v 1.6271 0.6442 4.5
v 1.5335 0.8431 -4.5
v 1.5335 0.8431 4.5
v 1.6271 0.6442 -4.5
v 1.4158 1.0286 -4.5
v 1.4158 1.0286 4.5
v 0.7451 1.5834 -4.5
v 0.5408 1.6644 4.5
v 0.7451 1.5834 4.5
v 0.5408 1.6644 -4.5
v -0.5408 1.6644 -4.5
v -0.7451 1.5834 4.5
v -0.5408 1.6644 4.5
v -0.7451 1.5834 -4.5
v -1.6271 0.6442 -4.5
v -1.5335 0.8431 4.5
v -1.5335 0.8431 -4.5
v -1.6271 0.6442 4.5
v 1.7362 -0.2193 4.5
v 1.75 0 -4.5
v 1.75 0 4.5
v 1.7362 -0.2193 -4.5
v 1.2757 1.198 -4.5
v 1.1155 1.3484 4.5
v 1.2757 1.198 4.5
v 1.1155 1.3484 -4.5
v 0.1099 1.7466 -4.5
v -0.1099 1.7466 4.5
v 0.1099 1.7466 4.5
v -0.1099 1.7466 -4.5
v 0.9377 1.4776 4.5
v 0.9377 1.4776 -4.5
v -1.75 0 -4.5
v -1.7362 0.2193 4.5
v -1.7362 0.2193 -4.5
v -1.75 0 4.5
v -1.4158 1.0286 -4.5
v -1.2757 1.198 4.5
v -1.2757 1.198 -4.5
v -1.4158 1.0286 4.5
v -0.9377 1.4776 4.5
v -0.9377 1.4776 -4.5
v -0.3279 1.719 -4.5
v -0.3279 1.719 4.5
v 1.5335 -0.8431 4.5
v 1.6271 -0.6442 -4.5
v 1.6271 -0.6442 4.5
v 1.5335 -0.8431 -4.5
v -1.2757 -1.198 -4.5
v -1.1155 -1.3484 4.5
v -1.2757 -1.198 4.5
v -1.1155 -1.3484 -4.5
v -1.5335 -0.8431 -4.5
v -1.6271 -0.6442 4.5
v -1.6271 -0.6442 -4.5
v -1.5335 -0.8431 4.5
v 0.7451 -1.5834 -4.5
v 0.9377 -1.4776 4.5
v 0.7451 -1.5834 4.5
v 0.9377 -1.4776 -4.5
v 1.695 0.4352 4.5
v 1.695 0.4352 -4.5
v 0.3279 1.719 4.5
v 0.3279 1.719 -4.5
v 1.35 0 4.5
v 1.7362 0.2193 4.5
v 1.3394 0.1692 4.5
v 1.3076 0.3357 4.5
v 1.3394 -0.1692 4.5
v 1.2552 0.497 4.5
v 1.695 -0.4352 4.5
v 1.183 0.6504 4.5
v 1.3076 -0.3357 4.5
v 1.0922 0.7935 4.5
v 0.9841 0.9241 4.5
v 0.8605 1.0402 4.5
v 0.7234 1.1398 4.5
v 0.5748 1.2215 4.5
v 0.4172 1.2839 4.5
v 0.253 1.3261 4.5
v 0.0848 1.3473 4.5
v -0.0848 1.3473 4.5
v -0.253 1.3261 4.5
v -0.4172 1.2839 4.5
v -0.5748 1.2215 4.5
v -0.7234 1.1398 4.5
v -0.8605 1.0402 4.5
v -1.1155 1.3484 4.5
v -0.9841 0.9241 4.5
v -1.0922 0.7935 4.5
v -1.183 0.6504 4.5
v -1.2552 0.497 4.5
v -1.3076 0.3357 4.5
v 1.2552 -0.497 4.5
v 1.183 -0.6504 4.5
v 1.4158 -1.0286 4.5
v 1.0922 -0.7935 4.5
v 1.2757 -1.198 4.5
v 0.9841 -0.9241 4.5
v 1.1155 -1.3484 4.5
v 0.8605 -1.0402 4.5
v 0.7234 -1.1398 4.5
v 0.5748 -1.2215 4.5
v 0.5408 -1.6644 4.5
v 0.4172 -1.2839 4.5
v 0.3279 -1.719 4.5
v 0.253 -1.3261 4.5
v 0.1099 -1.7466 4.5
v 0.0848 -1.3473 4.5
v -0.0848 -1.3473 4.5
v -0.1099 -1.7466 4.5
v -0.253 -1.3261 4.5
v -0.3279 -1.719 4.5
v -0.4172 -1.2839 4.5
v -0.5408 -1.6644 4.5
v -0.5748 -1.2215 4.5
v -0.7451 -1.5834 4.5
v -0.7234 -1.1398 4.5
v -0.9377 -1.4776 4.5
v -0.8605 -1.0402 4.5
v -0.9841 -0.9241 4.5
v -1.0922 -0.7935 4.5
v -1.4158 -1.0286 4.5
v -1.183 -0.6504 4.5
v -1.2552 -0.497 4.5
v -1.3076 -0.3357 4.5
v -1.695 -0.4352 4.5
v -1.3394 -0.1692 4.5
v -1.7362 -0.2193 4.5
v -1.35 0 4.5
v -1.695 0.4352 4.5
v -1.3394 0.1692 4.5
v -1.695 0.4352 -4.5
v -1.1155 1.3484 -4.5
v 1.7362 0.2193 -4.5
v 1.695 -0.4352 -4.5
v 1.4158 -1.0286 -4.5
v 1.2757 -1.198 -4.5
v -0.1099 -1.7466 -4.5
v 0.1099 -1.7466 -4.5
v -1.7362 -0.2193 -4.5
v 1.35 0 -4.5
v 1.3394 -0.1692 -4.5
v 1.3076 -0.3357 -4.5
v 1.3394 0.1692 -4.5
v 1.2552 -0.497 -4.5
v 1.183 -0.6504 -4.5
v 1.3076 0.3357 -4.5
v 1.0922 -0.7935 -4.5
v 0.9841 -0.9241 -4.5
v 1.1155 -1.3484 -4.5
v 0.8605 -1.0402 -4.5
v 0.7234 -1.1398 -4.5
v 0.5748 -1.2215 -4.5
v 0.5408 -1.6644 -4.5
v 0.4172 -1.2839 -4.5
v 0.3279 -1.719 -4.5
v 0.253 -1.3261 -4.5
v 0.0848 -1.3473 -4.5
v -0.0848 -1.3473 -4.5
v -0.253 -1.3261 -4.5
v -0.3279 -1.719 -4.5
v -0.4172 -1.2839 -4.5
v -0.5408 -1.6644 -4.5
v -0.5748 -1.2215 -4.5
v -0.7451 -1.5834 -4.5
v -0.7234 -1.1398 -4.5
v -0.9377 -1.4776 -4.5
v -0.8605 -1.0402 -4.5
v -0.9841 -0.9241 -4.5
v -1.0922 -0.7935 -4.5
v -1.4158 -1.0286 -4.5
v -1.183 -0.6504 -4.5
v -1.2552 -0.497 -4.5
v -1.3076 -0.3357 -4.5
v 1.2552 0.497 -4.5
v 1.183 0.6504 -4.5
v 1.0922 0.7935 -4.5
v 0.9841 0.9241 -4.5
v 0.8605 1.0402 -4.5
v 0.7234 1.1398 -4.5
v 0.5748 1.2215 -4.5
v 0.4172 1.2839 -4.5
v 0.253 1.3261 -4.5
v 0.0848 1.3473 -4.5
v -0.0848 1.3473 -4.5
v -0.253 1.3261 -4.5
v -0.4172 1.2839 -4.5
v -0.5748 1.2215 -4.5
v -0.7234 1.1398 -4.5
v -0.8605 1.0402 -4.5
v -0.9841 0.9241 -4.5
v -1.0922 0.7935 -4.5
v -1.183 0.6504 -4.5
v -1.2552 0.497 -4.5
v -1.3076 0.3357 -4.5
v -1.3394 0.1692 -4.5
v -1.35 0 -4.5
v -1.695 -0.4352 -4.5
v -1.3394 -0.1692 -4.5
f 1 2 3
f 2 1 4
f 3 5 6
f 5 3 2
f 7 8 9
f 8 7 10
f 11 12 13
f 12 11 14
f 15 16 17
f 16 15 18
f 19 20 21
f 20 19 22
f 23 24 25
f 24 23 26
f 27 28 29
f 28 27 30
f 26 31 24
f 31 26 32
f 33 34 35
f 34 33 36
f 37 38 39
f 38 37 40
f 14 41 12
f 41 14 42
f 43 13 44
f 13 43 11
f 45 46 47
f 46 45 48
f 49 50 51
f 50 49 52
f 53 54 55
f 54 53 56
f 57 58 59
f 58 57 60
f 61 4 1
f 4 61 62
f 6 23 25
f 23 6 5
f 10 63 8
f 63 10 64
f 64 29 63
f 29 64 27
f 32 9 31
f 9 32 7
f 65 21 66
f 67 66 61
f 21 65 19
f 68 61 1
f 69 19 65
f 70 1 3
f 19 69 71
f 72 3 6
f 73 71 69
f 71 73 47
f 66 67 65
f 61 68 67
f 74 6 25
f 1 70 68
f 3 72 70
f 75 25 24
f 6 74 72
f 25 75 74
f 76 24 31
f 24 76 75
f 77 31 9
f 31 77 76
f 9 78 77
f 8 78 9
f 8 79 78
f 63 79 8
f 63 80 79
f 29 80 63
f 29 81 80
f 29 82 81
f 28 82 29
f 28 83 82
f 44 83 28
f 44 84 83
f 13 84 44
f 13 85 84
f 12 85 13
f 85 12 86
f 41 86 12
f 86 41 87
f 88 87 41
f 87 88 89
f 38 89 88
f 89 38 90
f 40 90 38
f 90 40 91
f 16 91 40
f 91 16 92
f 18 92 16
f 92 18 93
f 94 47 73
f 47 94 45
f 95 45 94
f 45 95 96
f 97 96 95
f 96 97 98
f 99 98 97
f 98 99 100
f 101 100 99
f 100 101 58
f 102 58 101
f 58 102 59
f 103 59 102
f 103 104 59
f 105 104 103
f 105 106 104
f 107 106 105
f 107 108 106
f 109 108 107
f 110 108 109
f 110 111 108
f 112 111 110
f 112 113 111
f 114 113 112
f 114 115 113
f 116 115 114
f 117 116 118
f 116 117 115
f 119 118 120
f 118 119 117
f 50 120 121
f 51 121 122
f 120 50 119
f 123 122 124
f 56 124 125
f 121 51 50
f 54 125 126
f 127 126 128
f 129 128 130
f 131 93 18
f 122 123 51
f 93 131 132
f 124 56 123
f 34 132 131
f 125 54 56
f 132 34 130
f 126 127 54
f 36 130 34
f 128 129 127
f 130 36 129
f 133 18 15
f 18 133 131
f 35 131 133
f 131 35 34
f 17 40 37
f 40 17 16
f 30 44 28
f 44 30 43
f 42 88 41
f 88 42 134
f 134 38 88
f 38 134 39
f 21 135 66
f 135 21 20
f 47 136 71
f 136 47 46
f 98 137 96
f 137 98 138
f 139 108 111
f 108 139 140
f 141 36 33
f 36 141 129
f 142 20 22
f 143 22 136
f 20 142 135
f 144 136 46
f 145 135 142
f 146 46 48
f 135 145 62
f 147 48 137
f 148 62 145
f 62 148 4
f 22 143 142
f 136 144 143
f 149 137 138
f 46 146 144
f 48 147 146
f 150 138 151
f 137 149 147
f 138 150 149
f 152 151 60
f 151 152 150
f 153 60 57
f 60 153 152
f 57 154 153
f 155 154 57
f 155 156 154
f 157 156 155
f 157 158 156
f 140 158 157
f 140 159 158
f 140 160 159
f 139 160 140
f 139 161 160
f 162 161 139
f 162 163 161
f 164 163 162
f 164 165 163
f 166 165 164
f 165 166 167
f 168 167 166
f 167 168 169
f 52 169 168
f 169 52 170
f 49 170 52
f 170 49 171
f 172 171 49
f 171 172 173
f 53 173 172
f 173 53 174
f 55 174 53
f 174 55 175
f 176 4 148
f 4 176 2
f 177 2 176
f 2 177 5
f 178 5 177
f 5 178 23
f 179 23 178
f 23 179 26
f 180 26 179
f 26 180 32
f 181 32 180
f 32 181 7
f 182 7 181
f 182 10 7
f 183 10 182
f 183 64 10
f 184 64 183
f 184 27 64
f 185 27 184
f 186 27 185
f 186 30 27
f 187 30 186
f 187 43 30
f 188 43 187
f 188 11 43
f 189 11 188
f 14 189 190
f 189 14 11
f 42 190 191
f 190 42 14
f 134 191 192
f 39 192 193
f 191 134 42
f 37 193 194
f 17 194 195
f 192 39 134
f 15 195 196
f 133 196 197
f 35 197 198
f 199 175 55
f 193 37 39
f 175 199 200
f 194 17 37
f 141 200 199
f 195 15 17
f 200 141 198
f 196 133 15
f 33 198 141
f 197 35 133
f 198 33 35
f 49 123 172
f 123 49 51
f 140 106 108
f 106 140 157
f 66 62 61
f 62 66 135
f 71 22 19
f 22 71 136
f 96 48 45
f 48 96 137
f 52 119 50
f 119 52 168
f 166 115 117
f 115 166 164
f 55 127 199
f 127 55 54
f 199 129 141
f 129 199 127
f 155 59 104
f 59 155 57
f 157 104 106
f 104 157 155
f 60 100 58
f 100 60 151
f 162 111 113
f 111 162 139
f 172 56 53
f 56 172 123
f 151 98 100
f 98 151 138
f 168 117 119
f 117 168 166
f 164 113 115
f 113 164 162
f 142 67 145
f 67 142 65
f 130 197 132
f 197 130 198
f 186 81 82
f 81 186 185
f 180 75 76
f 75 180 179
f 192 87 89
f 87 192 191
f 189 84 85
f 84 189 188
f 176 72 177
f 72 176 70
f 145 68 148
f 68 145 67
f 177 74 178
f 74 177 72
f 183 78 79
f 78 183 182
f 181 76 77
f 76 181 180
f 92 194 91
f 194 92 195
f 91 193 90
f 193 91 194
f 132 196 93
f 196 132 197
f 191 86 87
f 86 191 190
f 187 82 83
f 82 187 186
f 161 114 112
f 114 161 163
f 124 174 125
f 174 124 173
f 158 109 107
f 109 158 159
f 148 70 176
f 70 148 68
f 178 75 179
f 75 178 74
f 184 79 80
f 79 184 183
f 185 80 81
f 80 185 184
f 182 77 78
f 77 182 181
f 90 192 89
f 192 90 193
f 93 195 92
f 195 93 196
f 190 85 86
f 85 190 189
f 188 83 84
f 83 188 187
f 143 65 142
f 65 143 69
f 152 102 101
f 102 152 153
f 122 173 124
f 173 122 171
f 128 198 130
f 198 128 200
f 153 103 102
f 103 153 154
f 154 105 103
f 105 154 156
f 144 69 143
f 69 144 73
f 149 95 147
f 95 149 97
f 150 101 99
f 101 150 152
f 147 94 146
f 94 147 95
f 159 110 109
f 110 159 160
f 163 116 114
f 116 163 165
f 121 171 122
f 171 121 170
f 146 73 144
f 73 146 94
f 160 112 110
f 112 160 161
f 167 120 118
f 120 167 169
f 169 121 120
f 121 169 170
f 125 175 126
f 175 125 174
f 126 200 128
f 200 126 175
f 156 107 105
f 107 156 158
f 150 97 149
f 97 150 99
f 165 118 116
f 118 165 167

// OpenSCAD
$fn = 50;


difference() {
	union() {
		translate(v = [0, 0, -4.5000000000]) {
			cylinder(h = 9, r = 1.7500000000);
		}
	}
	union() {
		translate(v = [0, 0, -100.0000000000]) {
			cylinder(h = 200, r = 1.3500000000);
		}
	}
}
